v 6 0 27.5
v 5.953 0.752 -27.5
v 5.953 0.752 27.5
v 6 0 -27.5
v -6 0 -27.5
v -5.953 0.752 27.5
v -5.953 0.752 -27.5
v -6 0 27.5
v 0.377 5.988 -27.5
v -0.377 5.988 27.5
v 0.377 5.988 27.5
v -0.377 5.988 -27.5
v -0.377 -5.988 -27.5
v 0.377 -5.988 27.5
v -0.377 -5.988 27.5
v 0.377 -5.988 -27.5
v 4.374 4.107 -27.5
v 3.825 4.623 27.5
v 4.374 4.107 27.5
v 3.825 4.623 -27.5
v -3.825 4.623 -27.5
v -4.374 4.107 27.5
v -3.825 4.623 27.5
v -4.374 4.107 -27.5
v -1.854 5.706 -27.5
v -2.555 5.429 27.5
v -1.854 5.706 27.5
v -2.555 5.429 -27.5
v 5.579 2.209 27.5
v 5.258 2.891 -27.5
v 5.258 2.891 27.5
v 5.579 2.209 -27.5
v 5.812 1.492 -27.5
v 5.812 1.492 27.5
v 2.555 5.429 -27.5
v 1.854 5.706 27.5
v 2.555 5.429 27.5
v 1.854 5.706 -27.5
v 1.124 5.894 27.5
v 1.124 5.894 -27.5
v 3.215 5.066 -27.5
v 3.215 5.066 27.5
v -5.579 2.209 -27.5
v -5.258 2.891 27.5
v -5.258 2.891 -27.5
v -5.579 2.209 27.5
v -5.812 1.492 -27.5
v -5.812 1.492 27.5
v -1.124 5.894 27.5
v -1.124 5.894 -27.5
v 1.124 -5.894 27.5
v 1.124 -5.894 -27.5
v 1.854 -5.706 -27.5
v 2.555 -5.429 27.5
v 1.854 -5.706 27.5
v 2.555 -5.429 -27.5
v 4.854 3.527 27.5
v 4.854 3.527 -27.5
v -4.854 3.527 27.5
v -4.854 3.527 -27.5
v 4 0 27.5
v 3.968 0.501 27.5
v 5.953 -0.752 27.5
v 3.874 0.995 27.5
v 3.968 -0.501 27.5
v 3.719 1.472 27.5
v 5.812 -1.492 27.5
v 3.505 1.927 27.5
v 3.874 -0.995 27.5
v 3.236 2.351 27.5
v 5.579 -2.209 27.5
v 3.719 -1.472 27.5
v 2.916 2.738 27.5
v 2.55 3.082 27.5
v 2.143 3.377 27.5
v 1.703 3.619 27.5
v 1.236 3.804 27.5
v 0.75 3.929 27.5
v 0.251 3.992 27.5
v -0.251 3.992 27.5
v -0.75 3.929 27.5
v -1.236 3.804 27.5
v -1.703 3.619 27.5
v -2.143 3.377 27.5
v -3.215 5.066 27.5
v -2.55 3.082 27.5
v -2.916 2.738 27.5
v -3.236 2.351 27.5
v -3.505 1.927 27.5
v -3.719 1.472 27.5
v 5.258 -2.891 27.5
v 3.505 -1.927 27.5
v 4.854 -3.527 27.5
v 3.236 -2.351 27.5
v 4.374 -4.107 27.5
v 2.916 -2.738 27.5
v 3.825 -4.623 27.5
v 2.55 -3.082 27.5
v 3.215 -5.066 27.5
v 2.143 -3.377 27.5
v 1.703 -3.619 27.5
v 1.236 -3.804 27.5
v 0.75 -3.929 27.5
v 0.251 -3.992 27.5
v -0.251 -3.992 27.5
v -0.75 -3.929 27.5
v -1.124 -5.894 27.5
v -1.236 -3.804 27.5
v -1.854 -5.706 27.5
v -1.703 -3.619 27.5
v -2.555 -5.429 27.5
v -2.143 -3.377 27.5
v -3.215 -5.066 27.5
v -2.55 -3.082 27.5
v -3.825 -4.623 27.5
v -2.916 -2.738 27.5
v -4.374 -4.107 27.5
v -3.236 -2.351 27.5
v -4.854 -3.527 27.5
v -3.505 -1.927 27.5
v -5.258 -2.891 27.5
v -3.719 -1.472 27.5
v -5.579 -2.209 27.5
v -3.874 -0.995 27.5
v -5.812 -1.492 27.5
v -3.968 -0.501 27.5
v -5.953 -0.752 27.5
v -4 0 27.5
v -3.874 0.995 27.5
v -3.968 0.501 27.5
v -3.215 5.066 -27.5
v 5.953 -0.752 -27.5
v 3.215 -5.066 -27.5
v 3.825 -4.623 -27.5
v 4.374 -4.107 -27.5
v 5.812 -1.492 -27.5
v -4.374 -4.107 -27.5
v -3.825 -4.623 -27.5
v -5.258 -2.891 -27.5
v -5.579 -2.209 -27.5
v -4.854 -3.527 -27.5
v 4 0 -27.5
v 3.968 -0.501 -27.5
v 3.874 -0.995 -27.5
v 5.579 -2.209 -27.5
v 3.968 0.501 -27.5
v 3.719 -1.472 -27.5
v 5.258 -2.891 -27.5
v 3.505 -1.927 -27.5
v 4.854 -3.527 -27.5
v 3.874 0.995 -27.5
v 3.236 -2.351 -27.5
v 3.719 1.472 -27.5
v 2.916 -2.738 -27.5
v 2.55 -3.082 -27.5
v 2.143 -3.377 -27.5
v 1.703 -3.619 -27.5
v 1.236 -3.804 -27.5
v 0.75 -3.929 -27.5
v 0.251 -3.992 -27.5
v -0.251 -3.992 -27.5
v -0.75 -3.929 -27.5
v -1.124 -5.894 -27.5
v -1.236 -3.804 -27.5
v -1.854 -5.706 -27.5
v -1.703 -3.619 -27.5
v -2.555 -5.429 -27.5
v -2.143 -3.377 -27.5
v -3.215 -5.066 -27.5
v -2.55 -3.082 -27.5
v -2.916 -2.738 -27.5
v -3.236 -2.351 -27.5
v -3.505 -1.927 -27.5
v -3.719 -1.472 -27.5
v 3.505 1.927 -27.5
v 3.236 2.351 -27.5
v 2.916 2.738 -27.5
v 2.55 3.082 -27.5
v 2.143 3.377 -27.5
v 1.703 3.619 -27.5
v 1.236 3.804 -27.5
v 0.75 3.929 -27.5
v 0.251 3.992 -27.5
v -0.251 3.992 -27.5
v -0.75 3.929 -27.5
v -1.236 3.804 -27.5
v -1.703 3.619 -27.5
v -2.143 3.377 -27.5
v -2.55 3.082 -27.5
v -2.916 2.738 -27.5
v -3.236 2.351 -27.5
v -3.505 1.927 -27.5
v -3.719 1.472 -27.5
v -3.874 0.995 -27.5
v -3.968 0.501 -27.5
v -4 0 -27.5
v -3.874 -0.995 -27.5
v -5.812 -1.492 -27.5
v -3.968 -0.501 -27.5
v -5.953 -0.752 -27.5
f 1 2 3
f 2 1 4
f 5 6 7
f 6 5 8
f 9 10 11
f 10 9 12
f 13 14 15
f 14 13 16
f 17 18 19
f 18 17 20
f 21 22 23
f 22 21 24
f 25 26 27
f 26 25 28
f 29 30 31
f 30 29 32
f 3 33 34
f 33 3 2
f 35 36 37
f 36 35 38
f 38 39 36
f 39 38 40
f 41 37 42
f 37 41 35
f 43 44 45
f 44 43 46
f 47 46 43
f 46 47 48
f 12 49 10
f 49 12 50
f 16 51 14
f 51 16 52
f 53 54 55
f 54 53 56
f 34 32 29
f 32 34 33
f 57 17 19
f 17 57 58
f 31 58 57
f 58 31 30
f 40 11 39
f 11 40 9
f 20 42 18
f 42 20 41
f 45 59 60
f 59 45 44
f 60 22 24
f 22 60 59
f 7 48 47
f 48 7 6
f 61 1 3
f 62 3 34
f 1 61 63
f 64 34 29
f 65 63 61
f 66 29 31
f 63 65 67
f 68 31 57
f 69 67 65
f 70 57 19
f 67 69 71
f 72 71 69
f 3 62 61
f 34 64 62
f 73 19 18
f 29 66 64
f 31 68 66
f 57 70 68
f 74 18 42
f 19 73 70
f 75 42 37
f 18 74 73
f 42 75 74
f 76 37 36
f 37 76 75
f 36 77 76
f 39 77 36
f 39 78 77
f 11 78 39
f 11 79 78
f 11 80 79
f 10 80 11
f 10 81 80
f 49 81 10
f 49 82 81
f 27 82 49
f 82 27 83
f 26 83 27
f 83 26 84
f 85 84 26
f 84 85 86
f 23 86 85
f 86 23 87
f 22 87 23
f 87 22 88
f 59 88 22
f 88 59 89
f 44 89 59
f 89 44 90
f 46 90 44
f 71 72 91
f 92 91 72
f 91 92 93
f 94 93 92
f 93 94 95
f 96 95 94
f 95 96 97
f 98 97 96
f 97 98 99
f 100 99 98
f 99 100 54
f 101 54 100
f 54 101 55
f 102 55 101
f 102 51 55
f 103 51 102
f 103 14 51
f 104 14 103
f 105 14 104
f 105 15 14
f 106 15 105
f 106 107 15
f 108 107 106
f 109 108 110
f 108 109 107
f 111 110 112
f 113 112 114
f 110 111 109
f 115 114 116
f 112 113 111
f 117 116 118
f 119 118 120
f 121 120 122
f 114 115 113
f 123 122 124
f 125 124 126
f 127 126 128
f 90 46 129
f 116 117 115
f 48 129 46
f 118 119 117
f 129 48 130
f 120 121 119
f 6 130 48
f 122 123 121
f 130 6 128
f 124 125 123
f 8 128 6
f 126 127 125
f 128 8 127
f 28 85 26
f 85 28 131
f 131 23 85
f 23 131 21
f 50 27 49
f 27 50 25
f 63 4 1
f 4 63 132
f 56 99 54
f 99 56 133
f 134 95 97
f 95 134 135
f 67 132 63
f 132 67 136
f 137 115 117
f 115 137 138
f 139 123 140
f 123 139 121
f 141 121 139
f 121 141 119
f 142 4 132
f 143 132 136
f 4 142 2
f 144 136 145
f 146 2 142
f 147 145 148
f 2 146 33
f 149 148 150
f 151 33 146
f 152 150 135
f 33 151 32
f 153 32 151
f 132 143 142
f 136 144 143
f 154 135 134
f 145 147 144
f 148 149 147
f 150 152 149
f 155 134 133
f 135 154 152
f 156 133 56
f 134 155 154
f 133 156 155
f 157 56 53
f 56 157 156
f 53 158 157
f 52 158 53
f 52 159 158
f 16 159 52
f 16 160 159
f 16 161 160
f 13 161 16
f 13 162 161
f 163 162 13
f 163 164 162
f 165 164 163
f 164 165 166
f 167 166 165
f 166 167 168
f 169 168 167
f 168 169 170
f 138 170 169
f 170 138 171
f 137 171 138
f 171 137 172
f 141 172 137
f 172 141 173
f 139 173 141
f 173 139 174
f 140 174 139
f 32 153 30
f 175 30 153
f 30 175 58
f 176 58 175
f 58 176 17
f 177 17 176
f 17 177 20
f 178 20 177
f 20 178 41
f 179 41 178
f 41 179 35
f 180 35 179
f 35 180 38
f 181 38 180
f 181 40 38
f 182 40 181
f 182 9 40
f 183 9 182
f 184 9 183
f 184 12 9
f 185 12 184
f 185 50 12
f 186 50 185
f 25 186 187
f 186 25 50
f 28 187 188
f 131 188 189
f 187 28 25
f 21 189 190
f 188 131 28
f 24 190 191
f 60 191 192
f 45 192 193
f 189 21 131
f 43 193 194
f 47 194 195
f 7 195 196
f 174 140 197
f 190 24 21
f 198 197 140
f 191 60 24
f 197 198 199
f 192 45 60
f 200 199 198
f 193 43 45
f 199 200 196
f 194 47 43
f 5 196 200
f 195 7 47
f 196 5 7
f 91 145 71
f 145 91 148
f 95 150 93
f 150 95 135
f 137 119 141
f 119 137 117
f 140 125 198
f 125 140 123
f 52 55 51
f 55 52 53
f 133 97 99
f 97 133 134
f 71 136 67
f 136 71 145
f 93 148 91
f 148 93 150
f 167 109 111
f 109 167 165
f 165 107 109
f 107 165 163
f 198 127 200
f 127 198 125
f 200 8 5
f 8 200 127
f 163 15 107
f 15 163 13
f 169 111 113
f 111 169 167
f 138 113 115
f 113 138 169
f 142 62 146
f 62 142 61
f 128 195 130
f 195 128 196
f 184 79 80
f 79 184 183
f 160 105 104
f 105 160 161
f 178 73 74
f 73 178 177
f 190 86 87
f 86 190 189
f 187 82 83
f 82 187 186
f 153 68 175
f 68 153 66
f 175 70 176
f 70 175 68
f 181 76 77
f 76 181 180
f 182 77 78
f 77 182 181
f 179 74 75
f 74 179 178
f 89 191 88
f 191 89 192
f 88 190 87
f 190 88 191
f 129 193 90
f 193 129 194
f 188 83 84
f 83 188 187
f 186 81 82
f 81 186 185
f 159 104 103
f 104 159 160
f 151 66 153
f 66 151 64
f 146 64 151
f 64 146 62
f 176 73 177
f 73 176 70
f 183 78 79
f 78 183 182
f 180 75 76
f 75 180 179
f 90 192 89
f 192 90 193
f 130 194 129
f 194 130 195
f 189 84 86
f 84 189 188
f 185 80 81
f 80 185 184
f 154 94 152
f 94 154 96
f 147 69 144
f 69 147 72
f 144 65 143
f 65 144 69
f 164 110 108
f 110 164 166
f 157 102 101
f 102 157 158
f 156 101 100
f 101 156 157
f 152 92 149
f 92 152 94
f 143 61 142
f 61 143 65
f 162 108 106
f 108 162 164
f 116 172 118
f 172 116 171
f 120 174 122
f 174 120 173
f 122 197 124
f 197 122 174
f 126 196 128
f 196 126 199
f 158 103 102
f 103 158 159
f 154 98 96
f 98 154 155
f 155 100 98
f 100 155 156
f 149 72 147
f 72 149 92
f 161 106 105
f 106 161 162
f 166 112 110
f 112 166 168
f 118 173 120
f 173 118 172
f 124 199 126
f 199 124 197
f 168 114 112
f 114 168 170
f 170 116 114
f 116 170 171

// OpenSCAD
$fn = 50;


difference() {
	union() {
		translate(v = [0, 0, -27.5000000000]) {
			cylinder(h = 55, r = 6.0000000000);
		}
	}
	union() {
		translate(v = [0, 0, -100.0000000000]) {
			cylinder(h = 200, r = 4);
		}
	}
}
